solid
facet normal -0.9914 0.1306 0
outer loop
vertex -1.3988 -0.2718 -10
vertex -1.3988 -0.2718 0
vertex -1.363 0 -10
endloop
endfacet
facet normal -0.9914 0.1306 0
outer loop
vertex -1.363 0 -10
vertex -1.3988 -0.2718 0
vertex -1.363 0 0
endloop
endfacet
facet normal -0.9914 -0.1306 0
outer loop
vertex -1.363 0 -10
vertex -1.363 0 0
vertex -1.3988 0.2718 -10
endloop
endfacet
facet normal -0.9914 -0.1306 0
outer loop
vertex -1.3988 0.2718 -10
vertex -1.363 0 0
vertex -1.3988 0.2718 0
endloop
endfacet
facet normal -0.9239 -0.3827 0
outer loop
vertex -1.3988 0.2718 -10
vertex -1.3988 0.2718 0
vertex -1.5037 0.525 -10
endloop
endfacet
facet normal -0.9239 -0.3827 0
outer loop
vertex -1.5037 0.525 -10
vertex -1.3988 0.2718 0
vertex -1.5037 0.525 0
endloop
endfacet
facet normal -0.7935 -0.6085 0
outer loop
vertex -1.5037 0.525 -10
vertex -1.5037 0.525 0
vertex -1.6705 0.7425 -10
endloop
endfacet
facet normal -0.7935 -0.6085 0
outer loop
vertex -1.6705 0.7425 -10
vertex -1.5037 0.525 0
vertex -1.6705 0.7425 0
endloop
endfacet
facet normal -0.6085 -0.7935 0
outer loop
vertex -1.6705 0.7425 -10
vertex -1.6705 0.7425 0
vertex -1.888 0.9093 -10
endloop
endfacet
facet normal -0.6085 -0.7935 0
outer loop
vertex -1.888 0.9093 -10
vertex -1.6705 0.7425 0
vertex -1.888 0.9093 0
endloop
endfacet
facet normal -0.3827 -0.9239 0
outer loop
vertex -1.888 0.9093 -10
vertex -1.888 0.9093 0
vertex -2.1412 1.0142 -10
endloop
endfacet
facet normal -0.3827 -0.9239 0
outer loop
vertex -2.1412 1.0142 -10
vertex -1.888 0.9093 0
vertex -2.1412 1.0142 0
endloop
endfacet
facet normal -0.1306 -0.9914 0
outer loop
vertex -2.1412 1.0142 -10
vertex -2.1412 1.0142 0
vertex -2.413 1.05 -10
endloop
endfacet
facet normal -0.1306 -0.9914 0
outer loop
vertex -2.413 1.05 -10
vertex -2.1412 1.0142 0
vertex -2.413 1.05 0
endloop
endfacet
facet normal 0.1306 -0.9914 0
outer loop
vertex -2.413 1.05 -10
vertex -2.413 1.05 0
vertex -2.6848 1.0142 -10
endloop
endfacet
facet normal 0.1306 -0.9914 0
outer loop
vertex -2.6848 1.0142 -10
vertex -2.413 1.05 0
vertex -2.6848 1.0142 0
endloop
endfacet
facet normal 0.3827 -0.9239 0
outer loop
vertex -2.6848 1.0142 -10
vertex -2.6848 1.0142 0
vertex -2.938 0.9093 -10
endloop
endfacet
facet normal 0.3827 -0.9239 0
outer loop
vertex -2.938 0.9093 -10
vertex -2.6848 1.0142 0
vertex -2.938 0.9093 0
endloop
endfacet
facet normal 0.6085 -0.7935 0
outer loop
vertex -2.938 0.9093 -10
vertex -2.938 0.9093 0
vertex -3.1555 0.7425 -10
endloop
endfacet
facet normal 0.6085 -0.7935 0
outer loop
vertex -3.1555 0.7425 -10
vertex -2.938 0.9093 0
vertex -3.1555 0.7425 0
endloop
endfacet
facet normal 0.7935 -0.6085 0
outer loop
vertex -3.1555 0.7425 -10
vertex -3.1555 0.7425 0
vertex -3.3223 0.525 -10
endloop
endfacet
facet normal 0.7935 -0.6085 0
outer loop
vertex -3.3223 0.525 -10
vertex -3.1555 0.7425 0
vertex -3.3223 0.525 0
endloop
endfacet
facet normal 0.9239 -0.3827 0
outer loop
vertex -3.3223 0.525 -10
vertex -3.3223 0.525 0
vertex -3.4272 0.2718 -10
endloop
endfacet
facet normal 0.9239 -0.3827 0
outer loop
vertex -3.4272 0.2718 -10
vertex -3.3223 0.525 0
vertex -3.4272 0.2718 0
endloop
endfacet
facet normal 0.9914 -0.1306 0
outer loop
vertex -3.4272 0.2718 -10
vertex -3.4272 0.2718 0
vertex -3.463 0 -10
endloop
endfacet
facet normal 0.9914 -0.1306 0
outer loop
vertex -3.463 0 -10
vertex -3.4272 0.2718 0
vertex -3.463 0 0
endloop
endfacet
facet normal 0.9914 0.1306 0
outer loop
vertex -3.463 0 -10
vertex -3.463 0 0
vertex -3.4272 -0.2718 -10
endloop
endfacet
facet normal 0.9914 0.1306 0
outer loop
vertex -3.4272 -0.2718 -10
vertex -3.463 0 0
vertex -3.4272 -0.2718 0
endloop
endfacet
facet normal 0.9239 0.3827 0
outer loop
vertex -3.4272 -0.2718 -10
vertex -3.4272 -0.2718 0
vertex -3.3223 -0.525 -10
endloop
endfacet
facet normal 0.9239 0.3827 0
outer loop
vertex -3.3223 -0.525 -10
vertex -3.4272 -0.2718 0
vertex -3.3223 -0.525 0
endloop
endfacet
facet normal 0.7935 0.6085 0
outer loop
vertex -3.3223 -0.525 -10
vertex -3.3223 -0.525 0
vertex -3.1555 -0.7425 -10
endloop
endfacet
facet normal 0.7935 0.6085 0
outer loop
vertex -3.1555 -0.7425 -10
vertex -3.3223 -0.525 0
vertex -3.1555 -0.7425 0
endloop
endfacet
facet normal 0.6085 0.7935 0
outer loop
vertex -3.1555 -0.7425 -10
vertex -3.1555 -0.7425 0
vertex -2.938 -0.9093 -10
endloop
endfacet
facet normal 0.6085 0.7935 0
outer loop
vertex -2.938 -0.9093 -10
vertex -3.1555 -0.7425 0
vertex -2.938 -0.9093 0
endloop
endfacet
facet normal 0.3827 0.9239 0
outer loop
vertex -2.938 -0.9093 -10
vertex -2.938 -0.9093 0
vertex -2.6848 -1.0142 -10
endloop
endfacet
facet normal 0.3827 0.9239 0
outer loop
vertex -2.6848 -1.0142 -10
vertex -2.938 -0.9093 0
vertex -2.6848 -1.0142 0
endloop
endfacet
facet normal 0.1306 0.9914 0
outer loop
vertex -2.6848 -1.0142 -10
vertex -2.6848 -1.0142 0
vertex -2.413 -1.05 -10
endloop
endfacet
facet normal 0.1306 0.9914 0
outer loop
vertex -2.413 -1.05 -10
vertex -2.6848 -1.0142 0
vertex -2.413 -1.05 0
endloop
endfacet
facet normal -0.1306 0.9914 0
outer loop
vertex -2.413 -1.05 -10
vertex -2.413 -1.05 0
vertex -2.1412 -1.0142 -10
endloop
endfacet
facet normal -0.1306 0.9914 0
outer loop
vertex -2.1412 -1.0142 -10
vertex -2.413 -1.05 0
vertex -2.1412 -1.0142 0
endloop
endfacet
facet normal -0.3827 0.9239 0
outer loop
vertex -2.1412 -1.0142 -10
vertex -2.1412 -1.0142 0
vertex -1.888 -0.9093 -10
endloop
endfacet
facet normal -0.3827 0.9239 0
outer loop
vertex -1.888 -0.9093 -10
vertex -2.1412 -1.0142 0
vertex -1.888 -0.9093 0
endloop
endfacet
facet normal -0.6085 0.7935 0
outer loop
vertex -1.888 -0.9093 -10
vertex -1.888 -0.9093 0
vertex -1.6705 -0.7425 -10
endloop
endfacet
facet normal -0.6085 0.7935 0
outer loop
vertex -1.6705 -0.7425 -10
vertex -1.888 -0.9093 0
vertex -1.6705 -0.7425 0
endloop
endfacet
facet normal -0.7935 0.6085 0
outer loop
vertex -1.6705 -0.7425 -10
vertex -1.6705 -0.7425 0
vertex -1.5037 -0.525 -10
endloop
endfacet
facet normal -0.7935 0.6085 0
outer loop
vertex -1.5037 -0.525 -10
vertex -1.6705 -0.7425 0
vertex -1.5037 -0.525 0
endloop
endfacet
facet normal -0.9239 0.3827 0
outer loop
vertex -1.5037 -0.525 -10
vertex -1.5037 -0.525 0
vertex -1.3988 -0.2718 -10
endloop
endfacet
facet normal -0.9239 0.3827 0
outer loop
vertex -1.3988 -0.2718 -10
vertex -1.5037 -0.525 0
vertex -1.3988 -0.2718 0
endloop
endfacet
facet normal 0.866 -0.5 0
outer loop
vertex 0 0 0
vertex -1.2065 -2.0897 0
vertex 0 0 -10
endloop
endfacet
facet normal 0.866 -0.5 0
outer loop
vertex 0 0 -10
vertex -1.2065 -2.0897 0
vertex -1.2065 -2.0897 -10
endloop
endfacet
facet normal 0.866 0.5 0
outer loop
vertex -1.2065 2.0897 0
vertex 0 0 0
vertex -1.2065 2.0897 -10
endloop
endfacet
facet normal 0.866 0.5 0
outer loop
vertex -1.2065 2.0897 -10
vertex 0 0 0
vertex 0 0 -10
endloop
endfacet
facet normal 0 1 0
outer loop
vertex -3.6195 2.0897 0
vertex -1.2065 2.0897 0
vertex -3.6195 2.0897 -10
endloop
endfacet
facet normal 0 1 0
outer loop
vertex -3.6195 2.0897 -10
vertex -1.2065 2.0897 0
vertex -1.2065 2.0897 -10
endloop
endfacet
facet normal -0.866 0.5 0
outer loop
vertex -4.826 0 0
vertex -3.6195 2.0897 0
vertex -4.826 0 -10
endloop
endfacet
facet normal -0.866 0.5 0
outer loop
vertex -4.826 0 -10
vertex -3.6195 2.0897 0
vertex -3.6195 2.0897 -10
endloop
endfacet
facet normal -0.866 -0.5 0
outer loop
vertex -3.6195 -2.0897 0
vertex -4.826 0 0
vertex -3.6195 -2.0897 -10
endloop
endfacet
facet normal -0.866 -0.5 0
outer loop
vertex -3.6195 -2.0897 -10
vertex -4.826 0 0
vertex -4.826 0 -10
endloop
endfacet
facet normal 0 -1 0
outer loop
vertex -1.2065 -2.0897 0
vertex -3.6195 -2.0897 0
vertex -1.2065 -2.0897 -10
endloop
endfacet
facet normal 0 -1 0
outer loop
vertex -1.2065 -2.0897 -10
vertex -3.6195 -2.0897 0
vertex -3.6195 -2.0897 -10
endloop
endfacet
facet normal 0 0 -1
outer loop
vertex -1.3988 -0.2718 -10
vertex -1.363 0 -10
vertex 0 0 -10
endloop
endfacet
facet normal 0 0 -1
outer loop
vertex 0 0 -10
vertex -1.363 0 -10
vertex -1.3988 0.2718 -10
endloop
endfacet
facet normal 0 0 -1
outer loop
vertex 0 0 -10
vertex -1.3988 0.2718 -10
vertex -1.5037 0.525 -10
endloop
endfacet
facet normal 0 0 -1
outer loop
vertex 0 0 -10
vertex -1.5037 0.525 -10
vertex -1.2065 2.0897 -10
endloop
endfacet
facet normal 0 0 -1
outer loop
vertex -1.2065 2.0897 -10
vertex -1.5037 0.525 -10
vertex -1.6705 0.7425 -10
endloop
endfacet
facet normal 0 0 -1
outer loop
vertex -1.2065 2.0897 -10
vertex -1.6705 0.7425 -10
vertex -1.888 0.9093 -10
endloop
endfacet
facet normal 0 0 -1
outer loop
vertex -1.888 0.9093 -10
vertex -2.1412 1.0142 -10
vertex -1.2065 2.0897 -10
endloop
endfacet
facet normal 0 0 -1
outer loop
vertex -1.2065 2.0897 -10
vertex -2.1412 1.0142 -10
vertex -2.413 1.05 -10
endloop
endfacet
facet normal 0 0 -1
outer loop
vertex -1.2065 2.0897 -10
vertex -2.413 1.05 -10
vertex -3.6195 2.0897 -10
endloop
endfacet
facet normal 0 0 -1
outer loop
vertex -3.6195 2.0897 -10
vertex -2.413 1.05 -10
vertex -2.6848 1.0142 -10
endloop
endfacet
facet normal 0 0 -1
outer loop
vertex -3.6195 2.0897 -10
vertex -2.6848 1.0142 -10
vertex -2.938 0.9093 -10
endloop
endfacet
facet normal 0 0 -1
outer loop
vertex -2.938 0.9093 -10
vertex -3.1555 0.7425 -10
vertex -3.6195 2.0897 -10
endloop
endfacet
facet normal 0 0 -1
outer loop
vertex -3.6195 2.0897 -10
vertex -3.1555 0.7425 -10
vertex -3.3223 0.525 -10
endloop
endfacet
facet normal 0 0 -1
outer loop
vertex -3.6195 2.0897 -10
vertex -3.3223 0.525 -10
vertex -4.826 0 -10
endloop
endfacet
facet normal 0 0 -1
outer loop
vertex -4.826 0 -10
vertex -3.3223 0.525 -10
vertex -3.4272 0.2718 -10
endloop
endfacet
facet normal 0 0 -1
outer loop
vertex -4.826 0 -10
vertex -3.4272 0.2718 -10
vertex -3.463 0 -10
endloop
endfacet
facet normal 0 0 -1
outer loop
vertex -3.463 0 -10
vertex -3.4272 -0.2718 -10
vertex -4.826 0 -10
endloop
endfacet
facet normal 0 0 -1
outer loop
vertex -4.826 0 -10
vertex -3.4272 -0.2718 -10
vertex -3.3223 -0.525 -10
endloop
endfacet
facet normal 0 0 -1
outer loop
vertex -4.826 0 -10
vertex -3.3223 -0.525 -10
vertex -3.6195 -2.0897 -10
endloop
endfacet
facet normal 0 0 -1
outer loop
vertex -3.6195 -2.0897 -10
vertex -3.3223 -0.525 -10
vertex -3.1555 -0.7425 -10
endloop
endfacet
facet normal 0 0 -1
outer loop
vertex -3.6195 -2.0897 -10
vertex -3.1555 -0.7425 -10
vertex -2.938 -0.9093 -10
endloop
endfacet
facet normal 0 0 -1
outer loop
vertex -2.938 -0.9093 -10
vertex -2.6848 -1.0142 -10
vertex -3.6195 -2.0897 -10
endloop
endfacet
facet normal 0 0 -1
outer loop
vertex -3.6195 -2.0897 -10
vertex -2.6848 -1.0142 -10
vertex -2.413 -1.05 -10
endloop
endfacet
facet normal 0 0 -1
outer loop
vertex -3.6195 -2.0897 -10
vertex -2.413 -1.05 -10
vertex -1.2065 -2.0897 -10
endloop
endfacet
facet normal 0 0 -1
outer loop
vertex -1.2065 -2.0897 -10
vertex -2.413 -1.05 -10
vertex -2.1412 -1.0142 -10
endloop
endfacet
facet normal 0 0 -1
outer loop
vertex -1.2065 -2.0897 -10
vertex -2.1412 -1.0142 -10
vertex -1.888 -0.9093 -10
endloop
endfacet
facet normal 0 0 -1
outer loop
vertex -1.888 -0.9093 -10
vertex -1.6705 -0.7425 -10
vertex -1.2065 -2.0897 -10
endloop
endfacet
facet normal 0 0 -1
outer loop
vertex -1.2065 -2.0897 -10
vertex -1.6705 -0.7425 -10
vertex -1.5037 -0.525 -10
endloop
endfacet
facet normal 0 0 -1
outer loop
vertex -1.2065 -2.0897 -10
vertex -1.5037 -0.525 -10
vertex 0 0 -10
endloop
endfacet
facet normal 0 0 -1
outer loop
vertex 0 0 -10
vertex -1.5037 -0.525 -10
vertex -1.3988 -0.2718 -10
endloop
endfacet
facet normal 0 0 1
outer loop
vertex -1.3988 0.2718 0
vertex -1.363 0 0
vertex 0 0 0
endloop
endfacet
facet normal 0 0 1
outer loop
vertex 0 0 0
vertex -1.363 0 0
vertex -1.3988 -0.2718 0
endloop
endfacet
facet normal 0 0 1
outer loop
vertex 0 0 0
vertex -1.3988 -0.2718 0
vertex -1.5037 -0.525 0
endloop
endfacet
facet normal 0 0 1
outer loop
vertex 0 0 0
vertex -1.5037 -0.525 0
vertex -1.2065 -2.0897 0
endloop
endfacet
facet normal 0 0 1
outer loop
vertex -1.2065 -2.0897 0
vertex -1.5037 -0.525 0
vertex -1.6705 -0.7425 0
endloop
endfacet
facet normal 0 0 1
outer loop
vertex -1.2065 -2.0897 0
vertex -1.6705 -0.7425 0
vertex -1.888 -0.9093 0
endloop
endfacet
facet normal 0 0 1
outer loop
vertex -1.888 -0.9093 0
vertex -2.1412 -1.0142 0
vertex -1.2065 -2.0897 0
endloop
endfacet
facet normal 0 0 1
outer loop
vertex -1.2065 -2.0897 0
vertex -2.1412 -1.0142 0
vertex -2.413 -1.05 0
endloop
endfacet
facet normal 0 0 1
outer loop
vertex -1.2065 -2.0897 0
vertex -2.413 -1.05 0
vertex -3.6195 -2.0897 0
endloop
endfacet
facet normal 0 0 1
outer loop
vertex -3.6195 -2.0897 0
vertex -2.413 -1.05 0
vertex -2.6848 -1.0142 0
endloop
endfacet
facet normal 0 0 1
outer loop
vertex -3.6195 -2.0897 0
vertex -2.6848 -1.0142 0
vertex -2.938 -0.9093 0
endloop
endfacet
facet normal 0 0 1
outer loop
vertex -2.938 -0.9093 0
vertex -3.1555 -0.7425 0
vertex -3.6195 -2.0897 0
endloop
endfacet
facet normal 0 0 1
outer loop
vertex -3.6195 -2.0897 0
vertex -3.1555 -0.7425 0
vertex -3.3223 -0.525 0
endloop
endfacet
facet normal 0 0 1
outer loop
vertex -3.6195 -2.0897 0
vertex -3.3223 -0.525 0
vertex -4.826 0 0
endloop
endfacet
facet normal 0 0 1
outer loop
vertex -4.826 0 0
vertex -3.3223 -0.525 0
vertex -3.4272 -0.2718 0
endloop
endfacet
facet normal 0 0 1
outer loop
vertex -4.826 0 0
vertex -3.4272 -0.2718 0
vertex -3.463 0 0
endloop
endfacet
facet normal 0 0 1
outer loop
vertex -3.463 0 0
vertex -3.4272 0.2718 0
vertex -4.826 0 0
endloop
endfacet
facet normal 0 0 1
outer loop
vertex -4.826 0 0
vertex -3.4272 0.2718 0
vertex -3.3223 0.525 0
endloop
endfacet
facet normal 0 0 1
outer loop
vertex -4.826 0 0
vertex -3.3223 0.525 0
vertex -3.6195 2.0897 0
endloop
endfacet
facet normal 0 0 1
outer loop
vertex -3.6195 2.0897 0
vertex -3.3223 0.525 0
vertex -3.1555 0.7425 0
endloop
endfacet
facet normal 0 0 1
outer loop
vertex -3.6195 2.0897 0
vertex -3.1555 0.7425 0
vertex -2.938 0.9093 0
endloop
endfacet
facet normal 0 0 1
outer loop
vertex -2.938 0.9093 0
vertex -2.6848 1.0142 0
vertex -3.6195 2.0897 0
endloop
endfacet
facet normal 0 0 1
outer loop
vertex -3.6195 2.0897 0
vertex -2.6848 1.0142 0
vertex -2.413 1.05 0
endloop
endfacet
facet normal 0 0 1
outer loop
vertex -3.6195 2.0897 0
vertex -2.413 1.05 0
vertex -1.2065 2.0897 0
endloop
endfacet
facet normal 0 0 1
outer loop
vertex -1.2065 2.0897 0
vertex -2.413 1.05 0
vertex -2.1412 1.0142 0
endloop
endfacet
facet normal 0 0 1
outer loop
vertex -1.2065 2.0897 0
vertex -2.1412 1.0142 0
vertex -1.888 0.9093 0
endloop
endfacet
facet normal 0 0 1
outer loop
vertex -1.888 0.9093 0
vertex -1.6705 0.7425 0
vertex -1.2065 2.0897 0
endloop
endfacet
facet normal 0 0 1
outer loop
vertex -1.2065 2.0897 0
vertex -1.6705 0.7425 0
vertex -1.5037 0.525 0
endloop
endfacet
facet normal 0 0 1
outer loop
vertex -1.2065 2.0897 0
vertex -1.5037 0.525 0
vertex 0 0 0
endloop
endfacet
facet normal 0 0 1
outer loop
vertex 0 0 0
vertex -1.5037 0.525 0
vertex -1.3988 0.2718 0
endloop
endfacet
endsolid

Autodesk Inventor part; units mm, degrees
ref_plane "YZ Plane" through (0, 0, 0) normal (1, 0, 0) x (0, 1, 0)
ref_plane "XZ Plane" through (0, 0, 0) normal (0, 1, 0) x (-1, 0, 0)
ref_plane "XY Plane" through (0, 0, 0) normal (0, 0, 1) x (1, 0, 0)
sketch "Sketch1" plane through (0, 0, 0) normal (0, 0, 1) x (1, 0, 0)
  circle A0 centre (-2.413, 0) radius 2.413 projected
  line L0 (-1.2065, -2.0897) -> (-3.6195, -2.0897)
  line L1 (-3.6195, -2.0897) -> (-4.826, 0)
  line L2 (-4.826, 0) -> (-3.6195, 2.0897)
  line L3 (-3.6195, 2.0897) -> (-1.2065, 2.0897)
  line L4 (-1.2065, 2.0897) -> (0, 0)
  line L5 (0, 0) -> (-1.2065, -2.0897)
  circle A1 centre (-2.413, 0) radius 1.05
  line L6 (-1.913, -3.5) -> (-9.8027, -3.5) projected
  point P0 (0, 0)
  dimension "d0" = 2.1
extrude "Extrusion1" add sketch "Sketch1" against normal blind 10 contours L5 L0 L1 L2 L3 L4
properties part number "SpacerShiel"
